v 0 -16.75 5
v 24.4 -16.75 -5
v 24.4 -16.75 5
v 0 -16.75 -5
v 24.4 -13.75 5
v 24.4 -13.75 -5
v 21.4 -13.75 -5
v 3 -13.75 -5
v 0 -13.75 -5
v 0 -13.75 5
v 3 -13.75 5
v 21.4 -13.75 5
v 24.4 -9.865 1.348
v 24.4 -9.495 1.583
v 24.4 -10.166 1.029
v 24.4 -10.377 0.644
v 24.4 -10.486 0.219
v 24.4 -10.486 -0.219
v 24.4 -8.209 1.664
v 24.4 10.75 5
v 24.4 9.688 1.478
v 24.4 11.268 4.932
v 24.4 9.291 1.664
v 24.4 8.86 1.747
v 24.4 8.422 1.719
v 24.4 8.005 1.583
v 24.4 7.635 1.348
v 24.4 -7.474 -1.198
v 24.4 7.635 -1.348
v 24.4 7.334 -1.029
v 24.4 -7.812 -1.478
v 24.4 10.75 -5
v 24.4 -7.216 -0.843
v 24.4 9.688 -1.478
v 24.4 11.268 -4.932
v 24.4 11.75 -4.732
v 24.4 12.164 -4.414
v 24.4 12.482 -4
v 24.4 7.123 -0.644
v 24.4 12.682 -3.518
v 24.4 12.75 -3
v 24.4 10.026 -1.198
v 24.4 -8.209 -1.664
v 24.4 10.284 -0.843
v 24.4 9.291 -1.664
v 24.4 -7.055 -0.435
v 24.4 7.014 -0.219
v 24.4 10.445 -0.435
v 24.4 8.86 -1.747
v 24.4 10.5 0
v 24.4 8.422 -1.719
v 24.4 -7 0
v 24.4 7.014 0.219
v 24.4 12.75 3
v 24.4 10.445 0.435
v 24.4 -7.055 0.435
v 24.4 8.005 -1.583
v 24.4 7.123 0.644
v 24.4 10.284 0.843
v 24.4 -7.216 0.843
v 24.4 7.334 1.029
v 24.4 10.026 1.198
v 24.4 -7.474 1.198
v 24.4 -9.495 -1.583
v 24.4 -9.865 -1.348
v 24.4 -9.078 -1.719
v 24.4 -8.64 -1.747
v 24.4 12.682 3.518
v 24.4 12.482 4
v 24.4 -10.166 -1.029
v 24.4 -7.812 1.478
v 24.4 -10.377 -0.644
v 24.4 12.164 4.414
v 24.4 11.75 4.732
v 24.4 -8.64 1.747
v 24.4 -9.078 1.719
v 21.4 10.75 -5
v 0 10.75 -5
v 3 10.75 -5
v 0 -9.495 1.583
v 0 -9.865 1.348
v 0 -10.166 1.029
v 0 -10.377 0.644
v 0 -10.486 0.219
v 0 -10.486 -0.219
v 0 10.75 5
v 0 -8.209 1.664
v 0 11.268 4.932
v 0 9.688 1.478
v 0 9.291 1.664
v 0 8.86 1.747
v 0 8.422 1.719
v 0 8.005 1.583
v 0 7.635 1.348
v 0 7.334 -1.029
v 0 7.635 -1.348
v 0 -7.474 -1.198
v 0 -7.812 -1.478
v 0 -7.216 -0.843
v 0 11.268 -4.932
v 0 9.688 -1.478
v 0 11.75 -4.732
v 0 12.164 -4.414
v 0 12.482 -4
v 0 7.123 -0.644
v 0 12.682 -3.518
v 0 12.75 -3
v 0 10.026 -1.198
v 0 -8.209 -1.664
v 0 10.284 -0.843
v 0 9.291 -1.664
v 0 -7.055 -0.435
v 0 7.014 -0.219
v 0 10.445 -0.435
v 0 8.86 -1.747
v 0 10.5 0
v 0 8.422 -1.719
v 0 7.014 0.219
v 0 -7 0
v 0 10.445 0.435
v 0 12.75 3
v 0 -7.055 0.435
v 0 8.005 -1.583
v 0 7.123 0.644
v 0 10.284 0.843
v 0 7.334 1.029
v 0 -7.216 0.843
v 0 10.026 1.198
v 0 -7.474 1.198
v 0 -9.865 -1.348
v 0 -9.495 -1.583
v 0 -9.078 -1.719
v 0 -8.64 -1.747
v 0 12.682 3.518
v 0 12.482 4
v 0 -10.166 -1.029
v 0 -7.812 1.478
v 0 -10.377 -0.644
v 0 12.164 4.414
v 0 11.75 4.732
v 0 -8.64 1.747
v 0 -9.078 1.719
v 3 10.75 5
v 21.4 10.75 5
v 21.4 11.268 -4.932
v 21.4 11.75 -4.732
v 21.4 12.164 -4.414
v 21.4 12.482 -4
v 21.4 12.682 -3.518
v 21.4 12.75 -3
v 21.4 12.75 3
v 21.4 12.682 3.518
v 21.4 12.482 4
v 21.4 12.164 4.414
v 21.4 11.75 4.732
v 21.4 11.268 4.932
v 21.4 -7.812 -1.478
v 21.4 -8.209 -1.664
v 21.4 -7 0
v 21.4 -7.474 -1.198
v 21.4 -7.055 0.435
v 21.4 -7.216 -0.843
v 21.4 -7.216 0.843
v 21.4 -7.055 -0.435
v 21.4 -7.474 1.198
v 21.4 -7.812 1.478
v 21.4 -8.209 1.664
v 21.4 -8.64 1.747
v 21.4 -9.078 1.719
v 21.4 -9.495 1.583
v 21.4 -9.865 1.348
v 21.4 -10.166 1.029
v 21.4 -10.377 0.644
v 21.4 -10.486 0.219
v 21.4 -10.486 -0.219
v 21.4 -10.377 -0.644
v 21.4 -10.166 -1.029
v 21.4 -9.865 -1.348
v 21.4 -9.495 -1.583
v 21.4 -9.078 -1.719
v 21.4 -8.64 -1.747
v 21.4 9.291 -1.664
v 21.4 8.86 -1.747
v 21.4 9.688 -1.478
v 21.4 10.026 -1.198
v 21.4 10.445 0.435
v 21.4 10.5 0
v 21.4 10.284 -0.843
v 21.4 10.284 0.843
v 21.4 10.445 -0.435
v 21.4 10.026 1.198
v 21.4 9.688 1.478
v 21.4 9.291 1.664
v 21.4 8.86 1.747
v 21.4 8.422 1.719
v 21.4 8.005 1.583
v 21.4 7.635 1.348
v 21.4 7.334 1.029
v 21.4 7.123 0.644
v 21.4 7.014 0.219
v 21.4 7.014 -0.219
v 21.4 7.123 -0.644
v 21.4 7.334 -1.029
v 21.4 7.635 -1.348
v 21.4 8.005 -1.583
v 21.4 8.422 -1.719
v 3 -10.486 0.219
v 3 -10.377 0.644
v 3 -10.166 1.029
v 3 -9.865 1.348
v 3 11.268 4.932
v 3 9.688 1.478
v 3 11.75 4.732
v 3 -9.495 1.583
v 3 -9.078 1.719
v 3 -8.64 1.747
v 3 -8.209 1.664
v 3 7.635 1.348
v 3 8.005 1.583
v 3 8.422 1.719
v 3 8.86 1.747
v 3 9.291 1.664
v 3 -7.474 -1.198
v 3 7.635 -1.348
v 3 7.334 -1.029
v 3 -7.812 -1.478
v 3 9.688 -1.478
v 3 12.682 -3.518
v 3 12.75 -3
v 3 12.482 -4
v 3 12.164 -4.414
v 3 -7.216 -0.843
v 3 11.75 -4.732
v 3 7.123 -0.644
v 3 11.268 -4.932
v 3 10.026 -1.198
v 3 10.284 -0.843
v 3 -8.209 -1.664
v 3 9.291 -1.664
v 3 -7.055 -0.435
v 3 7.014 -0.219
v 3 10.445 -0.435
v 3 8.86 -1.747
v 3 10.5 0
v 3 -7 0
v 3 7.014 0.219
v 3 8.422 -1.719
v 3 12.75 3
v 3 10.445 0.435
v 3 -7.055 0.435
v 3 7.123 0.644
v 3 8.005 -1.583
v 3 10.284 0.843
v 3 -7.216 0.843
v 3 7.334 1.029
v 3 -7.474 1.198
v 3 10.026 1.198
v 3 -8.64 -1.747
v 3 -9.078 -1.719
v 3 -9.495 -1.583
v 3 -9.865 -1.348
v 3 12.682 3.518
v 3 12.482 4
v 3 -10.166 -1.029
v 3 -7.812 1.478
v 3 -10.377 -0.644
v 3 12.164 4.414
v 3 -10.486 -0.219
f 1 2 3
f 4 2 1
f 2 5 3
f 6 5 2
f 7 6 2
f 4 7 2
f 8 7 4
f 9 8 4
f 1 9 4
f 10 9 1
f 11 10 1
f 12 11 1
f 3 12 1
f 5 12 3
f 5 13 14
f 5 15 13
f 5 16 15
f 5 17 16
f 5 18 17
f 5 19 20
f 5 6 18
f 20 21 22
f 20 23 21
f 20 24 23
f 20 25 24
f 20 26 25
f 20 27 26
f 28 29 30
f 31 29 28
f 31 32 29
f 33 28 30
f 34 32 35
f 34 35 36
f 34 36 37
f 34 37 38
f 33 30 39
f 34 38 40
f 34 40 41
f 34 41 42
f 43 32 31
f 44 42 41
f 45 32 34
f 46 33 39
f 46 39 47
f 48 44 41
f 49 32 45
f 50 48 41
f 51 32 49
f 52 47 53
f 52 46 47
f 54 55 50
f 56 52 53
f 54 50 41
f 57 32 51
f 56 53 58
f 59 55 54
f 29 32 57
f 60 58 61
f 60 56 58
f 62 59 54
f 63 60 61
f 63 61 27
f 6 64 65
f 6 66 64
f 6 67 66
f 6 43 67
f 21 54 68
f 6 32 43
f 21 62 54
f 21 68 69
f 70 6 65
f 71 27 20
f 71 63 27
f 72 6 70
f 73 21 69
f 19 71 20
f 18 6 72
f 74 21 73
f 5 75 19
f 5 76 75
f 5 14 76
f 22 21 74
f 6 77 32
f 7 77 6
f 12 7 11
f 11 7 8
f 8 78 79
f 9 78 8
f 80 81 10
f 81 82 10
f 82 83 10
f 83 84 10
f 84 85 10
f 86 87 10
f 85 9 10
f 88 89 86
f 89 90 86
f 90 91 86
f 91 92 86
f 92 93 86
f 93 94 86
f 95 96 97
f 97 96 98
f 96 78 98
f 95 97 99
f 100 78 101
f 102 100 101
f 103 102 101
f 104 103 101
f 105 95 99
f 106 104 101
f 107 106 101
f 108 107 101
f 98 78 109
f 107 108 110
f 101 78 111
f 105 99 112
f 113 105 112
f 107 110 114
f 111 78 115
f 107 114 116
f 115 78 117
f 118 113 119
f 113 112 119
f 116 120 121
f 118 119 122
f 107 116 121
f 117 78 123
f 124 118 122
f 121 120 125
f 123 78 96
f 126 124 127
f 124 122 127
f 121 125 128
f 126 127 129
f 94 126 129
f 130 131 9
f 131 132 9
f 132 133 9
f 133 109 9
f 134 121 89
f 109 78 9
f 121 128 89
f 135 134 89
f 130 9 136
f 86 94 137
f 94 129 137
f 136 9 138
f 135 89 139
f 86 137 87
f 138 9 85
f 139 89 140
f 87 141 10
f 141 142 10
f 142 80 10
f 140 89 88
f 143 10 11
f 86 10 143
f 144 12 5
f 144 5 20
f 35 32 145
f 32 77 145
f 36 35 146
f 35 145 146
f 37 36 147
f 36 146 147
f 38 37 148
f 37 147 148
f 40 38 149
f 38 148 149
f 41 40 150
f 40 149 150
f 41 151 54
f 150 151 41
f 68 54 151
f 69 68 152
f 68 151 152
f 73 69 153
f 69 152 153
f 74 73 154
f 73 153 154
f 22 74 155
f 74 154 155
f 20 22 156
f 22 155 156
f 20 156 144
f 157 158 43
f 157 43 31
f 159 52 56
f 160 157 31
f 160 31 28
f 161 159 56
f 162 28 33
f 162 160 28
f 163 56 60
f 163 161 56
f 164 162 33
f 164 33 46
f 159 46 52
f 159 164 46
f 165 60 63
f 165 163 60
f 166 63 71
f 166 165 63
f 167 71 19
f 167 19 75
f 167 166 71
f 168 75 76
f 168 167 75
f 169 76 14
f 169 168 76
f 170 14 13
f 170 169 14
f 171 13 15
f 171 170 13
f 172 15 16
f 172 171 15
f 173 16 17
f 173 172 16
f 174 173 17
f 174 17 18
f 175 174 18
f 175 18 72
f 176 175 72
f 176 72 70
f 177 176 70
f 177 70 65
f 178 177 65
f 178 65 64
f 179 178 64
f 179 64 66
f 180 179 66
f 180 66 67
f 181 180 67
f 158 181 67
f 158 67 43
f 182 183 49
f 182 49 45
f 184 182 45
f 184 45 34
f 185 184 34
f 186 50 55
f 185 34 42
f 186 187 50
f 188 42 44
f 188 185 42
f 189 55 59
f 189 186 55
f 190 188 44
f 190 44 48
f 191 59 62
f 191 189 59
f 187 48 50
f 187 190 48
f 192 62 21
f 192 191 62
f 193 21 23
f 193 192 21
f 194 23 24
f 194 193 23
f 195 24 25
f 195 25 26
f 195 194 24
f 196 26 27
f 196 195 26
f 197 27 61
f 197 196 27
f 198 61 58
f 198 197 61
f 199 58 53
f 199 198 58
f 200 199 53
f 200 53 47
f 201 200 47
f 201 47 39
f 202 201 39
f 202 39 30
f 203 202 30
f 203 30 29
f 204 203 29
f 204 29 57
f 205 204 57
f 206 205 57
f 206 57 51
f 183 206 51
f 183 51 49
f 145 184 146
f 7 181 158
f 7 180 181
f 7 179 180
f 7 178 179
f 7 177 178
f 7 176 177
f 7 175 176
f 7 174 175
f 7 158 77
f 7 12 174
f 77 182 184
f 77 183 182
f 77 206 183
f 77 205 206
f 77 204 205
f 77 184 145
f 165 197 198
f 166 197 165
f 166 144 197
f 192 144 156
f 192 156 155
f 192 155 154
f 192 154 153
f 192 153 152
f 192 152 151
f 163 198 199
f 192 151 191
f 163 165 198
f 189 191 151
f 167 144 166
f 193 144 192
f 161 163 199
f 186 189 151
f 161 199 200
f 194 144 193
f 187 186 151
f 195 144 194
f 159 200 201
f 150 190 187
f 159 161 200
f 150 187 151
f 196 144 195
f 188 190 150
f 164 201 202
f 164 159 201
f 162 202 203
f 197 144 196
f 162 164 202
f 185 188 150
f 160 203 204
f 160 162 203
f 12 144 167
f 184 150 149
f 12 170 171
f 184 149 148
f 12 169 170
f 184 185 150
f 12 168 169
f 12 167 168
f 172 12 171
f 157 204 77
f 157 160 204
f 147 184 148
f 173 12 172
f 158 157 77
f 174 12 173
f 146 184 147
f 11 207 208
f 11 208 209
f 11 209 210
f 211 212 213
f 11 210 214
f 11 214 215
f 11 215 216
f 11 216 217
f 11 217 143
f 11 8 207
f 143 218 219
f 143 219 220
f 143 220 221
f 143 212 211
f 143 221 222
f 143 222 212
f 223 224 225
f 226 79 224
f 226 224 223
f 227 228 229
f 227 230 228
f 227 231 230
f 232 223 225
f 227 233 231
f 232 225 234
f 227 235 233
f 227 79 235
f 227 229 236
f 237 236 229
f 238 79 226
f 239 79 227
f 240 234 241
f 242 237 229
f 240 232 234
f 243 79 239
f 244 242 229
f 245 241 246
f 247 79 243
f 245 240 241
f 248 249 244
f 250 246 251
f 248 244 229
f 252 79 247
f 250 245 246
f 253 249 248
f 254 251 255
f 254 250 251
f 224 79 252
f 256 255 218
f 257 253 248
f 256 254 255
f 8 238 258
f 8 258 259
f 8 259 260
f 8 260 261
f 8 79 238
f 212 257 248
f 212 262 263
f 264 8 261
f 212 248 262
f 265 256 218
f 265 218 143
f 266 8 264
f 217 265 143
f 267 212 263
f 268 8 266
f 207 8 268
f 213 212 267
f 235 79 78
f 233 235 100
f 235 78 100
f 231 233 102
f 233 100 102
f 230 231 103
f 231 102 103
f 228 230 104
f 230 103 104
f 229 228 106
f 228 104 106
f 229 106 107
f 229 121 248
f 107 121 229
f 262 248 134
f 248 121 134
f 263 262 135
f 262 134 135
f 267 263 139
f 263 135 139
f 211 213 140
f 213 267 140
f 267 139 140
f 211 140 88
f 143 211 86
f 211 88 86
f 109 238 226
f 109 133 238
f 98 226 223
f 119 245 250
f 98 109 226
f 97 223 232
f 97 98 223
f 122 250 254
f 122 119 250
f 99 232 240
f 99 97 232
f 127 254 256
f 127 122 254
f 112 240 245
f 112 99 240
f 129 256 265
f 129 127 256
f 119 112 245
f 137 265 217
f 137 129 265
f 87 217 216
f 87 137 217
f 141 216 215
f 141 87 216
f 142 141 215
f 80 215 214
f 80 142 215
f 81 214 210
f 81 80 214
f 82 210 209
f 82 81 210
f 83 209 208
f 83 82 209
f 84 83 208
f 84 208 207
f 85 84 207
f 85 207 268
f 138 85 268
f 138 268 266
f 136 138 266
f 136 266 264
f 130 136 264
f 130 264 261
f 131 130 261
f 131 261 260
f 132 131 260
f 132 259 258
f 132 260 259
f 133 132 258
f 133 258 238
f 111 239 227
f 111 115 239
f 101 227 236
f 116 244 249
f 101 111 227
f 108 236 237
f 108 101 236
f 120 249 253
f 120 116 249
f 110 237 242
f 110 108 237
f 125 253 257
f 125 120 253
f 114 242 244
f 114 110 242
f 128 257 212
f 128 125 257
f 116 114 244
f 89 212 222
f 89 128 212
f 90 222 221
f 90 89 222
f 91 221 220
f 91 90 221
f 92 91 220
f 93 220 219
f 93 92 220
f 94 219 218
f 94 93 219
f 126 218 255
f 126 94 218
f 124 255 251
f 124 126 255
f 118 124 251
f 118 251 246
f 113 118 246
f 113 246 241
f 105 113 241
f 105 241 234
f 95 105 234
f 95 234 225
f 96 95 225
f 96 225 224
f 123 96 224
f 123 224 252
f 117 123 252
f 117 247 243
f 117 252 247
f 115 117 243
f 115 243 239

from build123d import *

# Parameters (mm, degrees)
SKETCH_R     = 1.75
PAD_DEPTH    = 24.4
SKETCH001_W  = 10
SKETCH001_H  = 18.4
POCKET_DEPTH = 26.5
SKETCH002_W  = 10
SKETCH002_H  = 24.4
PAD001_DEPTH = 3


with BuildPart() as part:
    # Sketch → Pad (new body)
    with BuildSketch(Plane.YZ):
        with BuildLine():
            Line((-13.75, 5), (10.75, 5))
            ThreePointArc((12.75, 3), (12.164214, 4.414214), (10.75, 5))
            Line((12.75, 3), (12.75, -3))
            ThreePointArc((10.75, -5), (12.164214, -4.414214), (12.75, -3))
            Line((10.75, -5), (-13.75, -5))
            Line((-13.75, -5), (-13.75, 5))
        make_face()
        with Locations((-8.75, 0)):
            Circle(SKETCH_R, mode=Mode.SUBTRACT)
        with Locations((8.75, 0)):
            Circle(SKETCH_R, mode=Mode.SUBTRACT)
    extrude(amount=PAD_DEPTH)

    # Sketch001 → Pocket (cut)
    with BuildSketch(Plane(origin=(0, -13.75, 0), x_dir=(0, 0, -1), z_dir=(0, -1, 0))):
        with Locations((0, 12.2)):
            Rectangle(SKETCH001_W, SKETCH001_H)
    extrude(amount=-POCKET_DEPTH, mode=Mode.SUBTRACT)

    # Sketch002 → Pad001 (new body)
    with BuildSketch(Plane(origin=(0, -13.75, 0), x_dir=(0, 0, -1), z_dir=(0, -1, 0))):
        with Locations((0, 12.2)):
            Rectangle(SKETCH002_W, SKETCH002_H)
    extrude(amount=PAD001_DEPTH)


solid = part.part
